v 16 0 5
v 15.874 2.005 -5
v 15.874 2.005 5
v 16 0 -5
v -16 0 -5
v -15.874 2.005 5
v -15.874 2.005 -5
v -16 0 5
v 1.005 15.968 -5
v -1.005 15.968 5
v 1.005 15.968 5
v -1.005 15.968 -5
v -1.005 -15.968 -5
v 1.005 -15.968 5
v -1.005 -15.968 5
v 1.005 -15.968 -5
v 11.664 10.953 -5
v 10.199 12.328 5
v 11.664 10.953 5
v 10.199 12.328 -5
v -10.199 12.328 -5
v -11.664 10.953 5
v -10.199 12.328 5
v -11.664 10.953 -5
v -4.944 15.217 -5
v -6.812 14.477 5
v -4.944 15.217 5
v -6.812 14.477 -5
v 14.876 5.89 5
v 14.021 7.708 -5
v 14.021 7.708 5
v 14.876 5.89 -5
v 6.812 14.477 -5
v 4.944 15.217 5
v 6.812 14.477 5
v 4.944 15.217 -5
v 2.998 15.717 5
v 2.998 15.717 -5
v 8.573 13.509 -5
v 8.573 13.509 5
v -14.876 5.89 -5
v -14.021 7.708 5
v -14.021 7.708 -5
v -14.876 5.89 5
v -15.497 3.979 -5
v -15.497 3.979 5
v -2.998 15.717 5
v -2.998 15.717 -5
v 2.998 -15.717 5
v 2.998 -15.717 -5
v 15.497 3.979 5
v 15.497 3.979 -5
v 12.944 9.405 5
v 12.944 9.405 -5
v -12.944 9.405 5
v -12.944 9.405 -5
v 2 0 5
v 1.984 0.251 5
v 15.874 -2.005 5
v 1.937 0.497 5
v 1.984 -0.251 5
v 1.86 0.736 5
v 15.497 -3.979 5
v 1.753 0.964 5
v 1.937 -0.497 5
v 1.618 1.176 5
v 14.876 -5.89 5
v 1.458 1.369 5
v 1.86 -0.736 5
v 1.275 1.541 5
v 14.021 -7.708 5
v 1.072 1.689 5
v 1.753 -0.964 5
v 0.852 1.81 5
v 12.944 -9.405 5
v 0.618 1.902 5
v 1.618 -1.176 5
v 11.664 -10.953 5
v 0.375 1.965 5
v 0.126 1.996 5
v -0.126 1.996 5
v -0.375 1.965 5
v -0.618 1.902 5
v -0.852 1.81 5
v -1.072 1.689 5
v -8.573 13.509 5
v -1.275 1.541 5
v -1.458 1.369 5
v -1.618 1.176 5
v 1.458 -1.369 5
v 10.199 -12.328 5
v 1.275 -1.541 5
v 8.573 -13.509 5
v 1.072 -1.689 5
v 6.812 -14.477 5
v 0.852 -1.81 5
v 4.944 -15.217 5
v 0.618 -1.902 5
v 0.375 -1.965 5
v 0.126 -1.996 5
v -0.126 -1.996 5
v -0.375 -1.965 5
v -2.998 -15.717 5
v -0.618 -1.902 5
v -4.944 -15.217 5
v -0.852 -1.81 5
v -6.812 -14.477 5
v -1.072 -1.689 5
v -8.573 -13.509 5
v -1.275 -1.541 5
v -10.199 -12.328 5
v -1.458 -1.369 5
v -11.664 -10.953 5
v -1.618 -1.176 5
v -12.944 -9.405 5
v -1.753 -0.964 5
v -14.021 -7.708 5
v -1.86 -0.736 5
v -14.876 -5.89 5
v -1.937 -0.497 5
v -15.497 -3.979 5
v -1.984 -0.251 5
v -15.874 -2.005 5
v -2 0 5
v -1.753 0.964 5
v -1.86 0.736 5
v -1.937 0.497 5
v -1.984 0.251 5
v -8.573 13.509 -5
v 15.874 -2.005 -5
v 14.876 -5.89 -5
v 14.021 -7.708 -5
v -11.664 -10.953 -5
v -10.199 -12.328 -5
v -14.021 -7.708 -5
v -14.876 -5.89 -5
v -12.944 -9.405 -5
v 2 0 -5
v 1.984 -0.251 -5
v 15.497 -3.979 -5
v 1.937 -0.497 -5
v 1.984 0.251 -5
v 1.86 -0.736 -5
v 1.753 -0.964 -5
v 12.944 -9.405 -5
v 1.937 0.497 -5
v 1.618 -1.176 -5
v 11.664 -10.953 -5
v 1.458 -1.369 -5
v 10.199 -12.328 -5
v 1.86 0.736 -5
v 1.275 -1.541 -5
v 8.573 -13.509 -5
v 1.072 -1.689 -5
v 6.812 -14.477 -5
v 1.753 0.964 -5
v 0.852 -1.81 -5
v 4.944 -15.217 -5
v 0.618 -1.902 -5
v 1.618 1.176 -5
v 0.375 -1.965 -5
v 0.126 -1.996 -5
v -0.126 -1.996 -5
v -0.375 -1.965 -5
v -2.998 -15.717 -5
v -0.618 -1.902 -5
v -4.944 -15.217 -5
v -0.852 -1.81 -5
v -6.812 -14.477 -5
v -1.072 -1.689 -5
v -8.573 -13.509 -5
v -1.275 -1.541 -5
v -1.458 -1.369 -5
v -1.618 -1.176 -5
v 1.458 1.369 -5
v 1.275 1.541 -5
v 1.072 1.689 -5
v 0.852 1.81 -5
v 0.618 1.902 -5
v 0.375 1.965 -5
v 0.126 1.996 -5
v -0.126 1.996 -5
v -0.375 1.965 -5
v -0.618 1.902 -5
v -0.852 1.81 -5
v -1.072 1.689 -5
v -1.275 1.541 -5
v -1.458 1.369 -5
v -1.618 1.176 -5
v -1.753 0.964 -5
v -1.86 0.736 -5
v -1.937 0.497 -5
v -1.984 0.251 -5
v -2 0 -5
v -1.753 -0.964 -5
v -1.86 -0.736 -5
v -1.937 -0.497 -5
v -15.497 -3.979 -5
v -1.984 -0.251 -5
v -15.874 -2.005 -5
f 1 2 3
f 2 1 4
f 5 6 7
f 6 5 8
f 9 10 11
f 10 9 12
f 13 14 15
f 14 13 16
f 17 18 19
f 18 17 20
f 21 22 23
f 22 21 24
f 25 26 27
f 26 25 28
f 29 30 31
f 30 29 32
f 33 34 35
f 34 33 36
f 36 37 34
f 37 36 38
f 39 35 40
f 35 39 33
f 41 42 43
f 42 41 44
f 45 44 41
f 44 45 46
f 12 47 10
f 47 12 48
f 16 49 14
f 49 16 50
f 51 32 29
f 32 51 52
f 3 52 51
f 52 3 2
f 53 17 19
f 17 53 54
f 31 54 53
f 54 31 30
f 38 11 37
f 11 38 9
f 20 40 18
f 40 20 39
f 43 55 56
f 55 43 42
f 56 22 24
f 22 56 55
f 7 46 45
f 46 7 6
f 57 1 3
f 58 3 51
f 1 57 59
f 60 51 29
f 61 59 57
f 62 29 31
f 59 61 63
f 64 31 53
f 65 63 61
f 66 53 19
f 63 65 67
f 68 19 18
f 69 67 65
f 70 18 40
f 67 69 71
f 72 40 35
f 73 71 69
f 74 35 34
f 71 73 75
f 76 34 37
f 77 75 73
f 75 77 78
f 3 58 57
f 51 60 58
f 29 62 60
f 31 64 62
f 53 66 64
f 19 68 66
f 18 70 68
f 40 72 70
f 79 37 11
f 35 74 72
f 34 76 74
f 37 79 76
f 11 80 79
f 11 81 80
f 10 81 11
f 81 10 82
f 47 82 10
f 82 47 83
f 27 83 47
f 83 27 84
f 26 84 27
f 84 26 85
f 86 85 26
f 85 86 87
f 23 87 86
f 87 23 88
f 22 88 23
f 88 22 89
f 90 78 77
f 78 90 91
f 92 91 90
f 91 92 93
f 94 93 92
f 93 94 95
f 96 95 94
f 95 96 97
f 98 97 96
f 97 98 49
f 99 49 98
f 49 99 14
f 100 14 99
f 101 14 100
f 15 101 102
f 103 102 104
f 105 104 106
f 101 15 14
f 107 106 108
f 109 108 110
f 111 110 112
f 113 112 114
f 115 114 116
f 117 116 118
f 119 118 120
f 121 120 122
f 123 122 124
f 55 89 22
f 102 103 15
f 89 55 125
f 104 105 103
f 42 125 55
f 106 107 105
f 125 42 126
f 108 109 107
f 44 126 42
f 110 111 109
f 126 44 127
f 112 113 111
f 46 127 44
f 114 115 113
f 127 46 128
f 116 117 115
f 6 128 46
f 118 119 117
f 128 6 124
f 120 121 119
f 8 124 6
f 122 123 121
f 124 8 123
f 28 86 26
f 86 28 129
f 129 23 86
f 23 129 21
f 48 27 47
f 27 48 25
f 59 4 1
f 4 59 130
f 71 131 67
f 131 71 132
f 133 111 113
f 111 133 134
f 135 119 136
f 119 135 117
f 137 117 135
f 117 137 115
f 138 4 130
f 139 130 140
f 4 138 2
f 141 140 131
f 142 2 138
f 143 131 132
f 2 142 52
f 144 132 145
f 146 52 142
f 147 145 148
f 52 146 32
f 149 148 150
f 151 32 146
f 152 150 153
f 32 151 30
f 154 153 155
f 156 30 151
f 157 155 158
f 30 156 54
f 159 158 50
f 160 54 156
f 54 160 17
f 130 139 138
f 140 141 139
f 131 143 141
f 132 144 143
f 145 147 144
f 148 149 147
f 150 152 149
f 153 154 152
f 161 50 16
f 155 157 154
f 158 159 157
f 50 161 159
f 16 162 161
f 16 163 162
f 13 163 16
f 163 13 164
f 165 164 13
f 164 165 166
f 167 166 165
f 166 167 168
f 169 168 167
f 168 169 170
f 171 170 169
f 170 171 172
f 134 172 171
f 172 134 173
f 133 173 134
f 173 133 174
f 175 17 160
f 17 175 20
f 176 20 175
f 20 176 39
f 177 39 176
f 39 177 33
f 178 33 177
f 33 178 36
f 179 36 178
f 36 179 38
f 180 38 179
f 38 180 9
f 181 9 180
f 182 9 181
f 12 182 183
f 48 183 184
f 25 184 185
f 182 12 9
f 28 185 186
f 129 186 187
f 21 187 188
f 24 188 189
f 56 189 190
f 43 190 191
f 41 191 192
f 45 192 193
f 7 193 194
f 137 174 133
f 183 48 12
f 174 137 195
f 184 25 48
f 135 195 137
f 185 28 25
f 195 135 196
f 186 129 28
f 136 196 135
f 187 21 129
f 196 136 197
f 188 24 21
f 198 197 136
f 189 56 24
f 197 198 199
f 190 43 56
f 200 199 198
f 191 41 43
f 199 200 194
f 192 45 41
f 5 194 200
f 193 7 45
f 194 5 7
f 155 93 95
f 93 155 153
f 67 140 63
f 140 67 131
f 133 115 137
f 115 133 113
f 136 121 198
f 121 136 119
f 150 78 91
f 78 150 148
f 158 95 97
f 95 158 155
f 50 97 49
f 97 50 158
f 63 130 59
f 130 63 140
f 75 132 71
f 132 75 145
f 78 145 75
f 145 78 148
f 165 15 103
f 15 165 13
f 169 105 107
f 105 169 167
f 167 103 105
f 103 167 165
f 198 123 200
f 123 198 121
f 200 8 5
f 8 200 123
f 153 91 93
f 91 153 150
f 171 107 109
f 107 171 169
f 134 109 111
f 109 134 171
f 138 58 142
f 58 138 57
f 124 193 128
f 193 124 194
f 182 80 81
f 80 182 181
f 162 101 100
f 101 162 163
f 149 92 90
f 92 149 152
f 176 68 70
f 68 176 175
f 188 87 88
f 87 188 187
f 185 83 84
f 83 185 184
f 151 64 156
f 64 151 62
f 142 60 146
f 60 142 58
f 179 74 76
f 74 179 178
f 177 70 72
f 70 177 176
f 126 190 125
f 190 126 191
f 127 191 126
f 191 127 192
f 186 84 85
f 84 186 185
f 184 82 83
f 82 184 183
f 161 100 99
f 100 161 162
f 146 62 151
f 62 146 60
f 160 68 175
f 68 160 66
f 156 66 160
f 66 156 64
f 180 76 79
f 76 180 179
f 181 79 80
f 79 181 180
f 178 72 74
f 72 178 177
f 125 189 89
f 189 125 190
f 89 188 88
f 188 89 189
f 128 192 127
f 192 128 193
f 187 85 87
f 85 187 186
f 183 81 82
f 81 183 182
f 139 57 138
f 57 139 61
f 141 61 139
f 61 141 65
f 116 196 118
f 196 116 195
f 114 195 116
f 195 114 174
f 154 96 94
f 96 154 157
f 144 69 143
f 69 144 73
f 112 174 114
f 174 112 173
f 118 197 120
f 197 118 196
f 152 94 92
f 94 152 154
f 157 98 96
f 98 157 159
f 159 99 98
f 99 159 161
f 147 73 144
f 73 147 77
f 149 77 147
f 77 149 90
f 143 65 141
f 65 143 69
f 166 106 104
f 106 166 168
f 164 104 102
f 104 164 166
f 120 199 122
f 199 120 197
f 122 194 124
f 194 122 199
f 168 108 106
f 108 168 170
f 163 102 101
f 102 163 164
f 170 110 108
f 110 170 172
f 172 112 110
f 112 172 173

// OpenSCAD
$fn = 50;


difference() {
	union() {
		translate(v = [0, 0, -5.0000000000]) {
			cylinder(h = 10, r = 16.0000000000);
		}
	}
	union() {
		translate(v = [0, 0, -100.0000000000]) {
			cylinder(h = 200, r = 2);
		}
	}
}
